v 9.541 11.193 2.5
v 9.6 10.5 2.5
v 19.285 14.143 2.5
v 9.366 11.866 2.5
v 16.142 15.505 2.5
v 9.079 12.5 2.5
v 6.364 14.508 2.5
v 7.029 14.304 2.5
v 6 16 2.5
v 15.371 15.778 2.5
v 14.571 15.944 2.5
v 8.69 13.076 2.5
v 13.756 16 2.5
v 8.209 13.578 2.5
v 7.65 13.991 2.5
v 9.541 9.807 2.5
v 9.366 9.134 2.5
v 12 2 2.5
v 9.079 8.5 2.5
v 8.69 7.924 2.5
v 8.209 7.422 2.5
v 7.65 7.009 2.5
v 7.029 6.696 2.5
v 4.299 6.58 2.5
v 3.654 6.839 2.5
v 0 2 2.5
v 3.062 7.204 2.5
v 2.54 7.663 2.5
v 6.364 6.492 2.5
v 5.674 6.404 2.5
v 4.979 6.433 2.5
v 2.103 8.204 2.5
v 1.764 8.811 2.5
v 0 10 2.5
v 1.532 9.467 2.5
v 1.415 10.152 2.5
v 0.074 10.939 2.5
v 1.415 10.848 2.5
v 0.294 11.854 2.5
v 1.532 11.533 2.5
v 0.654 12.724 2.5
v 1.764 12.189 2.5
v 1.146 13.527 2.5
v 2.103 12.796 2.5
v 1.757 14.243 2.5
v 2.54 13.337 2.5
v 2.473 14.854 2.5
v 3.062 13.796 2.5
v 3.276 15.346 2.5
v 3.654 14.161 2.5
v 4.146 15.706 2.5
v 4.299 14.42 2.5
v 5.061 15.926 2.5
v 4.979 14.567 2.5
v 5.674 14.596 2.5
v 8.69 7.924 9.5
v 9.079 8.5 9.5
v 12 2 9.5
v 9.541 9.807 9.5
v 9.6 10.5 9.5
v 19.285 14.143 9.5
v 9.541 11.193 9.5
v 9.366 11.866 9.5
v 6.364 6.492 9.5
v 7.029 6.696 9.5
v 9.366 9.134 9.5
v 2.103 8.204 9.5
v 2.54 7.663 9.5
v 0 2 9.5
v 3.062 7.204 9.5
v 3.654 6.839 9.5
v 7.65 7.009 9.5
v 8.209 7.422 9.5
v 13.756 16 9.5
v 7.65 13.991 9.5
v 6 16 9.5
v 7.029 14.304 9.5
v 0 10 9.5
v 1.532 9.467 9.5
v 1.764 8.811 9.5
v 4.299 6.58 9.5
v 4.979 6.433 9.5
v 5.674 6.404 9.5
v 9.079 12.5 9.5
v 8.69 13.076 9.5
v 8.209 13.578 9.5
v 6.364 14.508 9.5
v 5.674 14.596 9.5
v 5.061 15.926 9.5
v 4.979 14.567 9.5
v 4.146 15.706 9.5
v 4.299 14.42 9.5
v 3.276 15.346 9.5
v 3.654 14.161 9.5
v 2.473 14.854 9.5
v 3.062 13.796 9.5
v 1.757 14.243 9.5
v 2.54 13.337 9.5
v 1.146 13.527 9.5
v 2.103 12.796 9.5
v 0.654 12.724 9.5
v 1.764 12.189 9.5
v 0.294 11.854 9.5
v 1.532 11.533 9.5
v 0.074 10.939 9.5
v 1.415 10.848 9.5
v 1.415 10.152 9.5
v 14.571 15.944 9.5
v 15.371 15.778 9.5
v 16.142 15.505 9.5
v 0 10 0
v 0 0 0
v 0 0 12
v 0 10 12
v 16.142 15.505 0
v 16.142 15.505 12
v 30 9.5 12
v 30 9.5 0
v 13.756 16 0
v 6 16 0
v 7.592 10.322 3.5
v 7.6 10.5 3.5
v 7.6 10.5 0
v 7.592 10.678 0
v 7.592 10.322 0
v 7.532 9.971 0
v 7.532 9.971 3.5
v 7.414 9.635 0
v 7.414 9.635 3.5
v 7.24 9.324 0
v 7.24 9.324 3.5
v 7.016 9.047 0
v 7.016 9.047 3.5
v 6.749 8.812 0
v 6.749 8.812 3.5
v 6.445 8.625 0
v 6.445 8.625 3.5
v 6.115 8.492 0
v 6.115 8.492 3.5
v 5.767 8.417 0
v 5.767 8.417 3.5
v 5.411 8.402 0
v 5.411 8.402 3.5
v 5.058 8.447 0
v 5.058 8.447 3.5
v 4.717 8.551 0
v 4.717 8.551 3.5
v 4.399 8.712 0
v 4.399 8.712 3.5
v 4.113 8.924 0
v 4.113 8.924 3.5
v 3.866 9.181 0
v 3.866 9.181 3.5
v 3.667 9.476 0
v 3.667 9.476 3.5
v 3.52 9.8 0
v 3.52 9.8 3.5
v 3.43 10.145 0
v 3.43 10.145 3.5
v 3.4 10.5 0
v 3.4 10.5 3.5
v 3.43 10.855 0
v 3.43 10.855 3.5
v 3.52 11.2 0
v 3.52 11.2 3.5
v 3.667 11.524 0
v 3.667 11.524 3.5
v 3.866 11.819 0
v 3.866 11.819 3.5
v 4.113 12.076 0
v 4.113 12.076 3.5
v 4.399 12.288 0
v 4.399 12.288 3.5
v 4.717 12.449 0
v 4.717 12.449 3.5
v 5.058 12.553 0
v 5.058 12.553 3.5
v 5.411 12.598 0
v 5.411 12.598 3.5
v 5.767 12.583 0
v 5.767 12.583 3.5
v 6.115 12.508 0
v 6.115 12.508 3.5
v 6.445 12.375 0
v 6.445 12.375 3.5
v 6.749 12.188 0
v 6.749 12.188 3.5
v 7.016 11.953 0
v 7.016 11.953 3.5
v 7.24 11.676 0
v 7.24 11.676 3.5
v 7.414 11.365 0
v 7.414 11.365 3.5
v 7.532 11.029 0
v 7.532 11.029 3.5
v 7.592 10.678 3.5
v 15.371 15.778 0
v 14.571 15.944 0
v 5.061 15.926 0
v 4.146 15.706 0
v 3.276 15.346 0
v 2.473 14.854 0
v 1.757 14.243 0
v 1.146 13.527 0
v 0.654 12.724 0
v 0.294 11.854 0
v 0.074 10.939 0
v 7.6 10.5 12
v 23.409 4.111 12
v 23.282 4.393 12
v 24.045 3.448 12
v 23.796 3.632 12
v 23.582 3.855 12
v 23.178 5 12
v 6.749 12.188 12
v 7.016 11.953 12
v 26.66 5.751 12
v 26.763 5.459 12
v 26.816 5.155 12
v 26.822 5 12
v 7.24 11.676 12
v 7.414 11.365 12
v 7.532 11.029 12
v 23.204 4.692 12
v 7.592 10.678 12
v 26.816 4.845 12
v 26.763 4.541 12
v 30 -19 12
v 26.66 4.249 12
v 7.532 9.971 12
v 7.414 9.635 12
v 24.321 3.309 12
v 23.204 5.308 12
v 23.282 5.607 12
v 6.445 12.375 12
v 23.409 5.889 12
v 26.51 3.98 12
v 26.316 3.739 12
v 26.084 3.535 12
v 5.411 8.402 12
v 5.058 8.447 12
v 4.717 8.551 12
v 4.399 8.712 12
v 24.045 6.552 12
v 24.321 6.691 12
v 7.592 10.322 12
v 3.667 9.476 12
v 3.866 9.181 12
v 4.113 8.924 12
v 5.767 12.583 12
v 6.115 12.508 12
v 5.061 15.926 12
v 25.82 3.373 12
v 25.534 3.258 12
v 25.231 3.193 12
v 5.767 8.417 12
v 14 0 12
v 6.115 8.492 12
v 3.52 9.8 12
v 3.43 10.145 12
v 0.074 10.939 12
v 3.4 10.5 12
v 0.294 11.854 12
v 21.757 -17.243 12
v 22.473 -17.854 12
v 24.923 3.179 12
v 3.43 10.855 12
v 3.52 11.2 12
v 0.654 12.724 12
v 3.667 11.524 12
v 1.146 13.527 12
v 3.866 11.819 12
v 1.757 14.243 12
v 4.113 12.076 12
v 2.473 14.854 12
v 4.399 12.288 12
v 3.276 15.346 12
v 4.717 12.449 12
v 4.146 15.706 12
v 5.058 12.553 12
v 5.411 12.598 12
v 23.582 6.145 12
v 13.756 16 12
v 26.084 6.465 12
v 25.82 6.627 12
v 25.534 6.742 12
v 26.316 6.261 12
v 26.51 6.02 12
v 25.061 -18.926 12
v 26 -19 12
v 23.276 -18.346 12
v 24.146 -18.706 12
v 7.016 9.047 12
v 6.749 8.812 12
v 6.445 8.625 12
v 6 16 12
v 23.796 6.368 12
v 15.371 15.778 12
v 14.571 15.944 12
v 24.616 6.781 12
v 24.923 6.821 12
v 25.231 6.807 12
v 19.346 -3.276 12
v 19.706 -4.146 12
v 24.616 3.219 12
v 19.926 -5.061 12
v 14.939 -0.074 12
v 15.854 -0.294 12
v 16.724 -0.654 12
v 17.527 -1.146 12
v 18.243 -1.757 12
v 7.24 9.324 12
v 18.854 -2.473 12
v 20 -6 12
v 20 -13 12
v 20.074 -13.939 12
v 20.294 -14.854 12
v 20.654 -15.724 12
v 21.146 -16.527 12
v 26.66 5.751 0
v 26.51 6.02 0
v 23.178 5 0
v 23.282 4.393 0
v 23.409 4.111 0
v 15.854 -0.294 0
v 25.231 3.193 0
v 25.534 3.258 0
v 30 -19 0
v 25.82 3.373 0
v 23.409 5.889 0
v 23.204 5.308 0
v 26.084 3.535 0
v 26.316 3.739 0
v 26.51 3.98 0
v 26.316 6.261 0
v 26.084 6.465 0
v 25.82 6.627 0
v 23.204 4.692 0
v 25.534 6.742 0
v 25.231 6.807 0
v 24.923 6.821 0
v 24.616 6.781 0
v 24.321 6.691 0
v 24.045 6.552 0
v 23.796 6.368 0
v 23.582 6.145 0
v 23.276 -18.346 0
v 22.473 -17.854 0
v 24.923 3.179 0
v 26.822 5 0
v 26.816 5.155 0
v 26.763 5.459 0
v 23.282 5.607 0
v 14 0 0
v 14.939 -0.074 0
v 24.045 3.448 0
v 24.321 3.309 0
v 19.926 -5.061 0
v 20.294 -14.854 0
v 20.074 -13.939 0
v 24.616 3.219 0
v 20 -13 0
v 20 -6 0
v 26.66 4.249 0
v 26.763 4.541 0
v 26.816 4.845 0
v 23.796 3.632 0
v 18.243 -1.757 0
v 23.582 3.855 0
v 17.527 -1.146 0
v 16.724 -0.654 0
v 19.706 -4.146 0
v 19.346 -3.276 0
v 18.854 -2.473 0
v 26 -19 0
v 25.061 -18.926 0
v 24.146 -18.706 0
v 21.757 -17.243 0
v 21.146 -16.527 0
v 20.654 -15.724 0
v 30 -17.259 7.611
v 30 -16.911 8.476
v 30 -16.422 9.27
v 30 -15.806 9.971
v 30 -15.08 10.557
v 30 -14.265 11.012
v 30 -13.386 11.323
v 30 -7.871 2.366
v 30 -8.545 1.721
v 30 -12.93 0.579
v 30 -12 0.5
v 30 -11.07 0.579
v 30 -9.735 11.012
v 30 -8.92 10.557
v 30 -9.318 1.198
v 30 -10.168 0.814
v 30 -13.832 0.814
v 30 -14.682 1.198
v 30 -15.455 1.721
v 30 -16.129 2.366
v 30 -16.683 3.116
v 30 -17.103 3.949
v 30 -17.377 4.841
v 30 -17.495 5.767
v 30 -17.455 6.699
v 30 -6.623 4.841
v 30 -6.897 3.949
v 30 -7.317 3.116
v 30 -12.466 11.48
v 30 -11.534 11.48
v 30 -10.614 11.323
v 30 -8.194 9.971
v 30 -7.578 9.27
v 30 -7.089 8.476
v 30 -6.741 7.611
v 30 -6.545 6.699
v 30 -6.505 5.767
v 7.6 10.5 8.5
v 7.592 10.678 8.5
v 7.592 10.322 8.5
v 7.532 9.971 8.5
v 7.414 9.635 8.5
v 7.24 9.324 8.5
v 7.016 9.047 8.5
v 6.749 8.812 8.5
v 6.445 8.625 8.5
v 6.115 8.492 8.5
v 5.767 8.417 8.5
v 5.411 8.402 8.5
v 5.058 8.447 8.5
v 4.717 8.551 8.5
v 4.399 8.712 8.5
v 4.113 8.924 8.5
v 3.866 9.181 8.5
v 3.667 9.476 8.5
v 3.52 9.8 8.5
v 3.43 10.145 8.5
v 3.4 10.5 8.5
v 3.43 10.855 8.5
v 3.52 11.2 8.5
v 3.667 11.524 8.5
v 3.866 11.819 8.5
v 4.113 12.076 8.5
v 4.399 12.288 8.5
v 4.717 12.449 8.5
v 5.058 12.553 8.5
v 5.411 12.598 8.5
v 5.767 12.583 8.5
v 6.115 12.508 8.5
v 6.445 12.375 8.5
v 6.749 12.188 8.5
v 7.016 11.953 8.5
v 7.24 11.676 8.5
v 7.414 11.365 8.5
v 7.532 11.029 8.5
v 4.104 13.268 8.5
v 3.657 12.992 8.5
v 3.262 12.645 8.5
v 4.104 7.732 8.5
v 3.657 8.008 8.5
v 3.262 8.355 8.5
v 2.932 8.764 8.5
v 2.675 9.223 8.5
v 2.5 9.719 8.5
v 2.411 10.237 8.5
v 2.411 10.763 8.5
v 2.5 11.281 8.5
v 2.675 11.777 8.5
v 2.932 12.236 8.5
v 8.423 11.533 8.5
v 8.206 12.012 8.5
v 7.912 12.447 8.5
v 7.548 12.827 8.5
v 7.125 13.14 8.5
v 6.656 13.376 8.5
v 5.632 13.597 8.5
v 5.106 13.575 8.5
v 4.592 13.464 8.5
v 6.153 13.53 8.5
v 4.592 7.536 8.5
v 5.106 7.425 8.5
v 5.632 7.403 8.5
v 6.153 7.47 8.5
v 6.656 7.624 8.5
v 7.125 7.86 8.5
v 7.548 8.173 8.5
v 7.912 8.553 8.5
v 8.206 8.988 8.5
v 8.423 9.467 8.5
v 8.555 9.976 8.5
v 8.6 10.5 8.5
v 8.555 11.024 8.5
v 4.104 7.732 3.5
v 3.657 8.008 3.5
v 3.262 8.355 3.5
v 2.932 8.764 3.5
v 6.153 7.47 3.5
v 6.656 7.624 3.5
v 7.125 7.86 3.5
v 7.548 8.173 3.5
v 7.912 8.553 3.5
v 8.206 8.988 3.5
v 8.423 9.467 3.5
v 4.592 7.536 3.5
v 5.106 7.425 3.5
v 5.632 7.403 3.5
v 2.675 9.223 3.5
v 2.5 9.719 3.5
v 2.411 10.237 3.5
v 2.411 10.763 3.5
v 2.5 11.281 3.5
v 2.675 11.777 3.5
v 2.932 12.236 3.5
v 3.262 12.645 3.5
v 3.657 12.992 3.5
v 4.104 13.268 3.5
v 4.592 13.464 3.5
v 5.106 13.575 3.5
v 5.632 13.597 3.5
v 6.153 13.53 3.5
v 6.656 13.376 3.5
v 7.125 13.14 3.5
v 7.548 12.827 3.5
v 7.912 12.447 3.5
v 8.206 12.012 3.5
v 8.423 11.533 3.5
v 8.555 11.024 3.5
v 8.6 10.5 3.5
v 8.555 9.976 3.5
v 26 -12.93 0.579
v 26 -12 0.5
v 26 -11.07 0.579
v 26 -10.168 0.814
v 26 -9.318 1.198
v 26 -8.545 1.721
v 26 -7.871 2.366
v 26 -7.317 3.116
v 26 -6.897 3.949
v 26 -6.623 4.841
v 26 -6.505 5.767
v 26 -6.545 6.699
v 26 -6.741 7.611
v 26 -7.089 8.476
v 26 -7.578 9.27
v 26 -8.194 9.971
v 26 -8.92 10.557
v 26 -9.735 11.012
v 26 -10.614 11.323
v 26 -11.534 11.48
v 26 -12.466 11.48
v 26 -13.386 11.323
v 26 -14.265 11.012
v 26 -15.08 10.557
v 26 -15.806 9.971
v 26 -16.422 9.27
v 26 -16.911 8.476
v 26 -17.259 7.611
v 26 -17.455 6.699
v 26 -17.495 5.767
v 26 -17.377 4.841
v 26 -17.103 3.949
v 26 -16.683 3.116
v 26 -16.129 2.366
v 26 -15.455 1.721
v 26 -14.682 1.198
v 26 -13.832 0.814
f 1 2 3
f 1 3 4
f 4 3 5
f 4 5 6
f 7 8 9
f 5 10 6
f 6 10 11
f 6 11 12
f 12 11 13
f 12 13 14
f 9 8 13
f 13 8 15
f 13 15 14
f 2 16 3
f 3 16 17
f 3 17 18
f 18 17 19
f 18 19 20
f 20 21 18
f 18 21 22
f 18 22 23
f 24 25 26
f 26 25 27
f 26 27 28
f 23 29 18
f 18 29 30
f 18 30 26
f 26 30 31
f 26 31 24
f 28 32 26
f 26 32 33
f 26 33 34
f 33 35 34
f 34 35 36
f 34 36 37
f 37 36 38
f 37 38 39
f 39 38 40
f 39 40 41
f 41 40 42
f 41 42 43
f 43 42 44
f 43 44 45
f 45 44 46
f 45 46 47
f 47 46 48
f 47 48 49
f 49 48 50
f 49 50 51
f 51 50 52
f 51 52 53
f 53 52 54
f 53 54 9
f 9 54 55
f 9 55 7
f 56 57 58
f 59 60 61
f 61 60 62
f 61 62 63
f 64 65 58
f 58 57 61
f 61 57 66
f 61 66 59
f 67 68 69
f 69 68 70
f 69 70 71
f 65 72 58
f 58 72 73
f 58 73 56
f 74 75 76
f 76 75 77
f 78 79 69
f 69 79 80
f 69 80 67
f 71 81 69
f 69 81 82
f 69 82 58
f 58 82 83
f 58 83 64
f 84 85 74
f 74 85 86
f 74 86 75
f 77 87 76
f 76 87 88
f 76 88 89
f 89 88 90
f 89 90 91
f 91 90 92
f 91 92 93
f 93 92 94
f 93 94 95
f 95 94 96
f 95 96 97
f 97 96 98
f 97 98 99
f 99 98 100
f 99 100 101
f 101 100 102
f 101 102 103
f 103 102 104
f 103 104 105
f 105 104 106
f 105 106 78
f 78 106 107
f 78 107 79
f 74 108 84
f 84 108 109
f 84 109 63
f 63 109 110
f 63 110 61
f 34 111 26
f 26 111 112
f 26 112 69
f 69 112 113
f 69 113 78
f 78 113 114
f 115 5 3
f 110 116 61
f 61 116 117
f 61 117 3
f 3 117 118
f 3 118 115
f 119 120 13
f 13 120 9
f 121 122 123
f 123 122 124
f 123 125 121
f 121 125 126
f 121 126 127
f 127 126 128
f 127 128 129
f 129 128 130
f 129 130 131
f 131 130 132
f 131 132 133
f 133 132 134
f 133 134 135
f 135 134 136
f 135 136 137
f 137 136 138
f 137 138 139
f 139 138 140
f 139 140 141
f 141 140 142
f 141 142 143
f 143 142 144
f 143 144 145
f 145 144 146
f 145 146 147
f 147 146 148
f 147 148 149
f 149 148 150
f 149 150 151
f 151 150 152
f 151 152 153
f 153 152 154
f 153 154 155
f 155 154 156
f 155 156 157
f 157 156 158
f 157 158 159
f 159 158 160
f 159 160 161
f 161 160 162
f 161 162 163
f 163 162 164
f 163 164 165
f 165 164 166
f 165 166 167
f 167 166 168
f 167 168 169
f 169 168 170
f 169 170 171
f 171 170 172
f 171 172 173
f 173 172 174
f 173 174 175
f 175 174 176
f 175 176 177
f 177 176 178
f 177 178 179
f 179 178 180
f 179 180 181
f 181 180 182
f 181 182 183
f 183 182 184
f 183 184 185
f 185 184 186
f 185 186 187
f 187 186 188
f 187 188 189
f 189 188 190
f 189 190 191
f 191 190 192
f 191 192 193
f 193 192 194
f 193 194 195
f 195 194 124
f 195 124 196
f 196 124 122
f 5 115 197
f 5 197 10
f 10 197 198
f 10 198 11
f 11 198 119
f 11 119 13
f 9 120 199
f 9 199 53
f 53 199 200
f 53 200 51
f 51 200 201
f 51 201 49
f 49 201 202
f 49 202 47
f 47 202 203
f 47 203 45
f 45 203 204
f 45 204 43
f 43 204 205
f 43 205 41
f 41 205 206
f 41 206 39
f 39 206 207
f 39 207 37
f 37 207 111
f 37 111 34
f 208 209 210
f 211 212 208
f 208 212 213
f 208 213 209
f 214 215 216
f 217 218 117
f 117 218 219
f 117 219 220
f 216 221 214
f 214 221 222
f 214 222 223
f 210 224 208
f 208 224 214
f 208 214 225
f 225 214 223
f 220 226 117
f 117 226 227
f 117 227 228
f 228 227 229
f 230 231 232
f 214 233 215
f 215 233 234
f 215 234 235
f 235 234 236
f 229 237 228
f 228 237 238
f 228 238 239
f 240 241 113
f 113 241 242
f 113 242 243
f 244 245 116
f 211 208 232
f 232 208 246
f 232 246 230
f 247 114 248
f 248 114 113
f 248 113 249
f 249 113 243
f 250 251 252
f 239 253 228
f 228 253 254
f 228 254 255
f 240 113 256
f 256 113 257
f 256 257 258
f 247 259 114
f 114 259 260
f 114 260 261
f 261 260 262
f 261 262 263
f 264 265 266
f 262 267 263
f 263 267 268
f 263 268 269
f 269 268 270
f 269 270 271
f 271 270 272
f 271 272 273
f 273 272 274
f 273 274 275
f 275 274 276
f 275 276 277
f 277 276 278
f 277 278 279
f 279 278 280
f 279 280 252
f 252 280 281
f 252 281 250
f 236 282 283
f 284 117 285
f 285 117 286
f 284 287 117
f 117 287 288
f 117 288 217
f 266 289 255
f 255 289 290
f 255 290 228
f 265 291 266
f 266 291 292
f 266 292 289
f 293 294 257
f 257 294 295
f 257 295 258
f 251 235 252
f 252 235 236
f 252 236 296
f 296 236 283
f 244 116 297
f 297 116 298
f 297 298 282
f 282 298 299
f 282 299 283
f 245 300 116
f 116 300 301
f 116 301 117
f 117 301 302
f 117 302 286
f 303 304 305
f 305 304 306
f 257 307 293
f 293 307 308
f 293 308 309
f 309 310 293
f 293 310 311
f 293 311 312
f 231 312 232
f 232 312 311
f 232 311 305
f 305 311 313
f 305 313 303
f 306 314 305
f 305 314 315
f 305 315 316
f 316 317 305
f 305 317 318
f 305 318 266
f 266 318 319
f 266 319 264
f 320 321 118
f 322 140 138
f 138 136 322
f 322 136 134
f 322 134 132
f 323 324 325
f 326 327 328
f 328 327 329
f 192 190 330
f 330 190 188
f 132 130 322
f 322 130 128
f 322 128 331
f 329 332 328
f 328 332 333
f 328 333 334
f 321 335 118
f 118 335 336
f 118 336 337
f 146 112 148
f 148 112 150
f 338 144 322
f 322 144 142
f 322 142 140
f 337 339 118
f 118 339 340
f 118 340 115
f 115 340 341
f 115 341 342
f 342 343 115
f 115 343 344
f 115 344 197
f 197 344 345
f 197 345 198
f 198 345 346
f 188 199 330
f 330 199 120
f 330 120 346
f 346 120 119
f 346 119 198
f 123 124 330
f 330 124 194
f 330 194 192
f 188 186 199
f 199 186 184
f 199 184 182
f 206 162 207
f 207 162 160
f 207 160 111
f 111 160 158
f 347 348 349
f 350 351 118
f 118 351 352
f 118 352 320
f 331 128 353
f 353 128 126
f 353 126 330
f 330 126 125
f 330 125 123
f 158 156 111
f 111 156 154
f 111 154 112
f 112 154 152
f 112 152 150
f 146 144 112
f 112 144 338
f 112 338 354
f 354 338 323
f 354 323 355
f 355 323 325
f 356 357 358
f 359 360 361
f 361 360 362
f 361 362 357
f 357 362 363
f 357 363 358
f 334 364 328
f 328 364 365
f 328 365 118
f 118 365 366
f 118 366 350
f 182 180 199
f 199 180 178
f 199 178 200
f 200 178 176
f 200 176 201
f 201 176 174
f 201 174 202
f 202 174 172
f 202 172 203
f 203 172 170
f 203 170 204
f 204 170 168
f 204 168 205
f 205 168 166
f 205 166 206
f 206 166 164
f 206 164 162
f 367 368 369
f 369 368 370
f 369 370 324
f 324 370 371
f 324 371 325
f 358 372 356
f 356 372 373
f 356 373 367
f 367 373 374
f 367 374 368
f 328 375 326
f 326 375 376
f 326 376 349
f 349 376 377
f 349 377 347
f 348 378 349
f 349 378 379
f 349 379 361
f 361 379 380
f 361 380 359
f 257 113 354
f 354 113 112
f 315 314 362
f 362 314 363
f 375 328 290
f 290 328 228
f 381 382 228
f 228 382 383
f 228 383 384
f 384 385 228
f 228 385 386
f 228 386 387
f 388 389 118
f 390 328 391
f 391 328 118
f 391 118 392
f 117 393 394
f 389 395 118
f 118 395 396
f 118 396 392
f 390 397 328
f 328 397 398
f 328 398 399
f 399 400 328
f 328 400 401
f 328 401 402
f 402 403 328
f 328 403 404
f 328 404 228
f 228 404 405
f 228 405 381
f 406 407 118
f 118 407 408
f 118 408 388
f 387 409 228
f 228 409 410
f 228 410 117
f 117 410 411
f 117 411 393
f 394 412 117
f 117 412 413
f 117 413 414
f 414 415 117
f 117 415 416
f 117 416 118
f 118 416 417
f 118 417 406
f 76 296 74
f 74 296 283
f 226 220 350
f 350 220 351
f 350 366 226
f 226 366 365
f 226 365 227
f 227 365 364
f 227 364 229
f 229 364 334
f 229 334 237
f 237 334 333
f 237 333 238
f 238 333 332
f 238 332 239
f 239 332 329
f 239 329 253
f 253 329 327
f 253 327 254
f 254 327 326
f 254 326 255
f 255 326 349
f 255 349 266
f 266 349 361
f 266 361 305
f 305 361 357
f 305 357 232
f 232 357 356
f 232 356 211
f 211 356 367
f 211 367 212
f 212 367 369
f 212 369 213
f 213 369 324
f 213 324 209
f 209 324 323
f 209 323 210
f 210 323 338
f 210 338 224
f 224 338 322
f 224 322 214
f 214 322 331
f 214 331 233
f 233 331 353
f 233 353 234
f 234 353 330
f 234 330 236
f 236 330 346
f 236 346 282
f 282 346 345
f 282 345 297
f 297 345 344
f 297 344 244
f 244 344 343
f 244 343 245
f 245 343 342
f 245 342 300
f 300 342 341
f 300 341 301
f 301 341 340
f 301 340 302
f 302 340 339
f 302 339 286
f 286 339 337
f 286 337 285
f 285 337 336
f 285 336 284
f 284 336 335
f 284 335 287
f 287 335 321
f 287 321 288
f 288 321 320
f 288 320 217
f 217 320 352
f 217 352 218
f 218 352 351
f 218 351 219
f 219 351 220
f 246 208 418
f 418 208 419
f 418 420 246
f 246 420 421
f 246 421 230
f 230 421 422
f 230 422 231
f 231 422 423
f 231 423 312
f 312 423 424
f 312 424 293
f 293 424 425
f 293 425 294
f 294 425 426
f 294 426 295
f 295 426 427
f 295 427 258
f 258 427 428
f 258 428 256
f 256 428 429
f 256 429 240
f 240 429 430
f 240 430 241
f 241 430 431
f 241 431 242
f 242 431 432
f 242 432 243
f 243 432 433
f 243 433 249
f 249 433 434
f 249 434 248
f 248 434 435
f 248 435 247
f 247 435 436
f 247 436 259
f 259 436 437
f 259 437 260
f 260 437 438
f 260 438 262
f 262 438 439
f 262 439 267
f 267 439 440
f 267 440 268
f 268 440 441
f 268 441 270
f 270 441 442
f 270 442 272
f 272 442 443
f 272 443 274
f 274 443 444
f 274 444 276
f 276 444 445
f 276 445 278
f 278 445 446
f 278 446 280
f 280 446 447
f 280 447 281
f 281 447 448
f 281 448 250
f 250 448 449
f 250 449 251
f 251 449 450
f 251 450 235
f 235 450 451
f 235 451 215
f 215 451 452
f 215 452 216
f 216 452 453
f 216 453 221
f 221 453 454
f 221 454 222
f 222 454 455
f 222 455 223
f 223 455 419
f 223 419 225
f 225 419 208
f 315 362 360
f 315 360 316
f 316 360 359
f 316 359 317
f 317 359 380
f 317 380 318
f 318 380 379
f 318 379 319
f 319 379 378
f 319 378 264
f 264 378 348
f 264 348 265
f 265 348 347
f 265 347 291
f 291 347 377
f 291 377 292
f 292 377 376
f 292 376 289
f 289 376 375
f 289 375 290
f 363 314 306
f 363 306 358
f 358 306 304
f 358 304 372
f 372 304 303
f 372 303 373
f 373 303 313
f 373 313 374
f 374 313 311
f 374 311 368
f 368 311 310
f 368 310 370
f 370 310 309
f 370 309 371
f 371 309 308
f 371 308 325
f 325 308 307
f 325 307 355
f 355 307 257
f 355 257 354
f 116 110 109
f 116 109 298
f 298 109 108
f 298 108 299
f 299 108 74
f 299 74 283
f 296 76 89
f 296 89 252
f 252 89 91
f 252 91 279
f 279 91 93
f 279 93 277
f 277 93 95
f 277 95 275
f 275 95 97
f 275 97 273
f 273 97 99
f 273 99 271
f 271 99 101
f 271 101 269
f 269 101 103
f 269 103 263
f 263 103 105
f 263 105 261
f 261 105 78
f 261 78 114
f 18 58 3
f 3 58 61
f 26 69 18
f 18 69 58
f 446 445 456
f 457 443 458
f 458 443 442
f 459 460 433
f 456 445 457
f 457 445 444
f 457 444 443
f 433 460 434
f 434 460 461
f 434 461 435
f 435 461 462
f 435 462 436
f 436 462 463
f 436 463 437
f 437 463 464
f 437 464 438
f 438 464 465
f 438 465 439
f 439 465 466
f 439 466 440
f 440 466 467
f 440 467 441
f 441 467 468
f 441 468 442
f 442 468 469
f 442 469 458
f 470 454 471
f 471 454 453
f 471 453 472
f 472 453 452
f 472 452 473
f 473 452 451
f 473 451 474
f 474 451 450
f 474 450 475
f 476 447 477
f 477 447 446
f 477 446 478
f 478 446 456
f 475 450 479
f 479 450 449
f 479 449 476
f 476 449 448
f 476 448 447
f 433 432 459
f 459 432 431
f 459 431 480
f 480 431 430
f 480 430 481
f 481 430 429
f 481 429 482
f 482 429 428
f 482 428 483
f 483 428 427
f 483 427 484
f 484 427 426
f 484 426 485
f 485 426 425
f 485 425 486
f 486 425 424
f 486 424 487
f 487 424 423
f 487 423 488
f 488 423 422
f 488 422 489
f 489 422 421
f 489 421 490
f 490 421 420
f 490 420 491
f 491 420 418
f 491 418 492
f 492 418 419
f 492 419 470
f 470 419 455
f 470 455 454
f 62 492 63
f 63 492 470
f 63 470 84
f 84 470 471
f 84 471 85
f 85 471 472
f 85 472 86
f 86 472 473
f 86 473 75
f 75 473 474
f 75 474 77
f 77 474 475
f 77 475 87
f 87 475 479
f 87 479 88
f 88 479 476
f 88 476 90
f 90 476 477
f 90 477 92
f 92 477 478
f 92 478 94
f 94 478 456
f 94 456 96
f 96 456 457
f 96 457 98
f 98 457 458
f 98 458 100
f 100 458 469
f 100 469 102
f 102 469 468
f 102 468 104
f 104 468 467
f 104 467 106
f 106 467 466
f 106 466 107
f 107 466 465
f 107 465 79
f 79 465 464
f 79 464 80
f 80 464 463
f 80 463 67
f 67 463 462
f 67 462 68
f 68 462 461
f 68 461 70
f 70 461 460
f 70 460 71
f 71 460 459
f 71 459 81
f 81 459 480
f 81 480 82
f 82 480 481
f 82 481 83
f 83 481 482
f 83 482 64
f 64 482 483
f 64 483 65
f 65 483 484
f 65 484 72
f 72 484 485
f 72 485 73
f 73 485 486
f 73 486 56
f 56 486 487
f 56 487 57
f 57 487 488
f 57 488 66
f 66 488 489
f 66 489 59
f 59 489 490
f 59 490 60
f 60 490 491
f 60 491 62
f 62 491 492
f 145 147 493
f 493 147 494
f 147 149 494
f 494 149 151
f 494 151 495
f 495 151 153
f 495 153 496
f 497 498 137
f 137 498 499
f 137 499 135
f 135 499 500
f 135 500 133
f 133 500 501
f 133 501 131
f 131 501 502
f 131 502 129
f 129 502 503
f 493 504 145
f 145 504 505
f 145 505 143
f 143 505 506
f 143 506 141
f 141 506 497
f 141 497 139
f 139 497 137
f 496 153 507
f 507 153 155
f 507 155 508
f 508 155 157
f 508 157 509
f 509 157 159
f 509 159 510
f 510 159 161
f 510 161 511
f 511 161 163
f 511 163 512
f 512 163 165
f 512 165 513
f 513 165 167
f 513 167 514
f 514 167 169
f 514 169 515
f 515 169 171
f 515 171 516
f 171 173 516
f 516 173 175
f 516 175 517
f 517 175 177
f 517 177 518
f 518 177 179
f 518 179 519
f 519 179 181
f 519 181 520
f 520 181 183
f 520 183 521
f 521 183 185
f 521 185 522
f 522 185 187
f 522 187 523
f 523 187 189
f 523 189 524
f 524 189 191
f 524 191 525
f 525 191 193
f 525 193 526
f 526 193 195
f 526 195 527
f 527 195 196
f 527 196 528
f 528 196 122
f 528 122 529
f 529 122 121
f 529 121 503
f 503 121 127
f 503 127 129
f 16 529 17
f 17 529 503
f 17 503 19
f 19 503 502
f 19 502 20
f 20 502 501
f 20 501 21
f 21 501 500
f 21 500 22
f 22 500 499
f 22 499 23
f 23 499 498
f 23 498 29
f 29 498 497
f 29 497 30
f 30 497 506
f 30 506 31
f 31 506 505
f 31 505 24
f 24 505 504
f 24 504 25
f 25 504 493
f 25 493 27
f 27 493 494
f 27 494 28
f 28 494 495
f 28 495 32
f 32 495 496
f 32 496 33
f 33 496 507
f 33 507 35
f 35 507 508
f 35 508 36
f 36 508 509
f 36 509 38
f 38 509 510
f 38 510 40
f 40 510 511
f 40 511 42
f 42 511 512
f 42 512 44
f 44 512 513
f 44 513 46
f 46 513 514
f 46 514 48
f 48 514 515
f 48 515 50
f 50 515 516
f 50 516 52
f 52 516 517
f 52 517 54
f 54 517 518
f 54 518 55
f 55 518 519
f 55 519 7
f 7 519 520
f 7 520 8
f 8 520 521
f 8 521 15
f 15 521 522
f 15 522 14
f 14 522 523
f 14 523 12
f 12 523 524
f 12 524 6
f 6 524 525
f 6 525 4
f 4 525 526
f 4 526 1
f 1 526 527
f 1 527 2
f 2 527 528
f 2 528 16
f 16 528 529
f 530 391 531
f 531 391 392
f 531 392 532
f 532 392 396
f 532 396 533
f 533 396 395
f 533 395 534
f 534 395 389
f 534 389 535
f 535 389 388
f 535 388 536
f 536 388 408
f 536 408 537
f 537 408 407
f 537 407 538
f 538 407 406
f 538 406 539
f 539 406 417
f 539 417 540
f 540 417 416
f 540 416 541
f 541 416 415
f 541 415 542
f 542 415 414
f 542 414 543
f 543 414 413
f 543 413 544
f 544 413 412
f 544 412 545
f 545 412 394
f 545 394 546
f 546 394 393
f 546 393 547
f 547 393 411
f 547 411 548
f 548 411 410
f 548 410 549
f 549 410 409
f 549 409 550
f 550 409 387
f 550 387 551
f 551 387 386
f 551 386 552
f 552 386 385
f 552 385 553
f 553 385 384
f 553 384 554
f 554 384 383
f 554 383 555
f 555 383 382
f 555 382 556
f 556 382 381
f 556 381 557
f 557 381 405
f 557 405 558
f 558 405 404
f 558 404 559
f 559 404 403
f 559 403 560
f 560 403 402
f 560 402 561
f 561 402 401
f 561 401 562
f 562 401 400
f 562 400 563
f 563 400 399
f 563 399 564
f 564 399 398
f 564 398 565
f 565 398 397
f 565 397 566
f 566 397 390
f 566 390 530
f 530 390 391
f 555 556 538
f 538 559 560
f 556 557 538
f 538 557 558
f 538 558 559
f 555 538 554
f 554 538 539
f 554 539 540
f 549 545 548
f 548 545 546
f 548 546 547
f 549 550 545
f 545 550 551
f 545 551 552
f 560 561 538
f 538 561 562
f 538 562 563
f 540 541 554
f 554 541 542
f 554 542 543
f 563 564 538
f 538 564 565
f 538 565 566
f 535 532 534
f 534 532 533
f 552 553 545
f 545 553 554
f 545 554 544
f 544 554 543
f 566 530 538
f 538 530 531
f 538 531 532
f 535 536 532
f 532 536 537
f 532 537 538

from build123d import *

# Parameters (mm, degrees)
SKETCH1_R               = 1.822216084
SKETCH1_R_2             = 2.1
BOSS_EXTRUDE1_DEPTH     = 12
FILLET1_R               = 6
CUT_EXTRUDE1_DEPTH      = 3.5
CUT_EXTRUDE1_DEPTH_BACK = 3.5
SKETCH5_R               = 5.5
CUT_EXTRUDE2_DEPTH      = 4


with BuildPart() as part:
    # Sketch1 → Boss-Extrude1 (new body)
    with BuildSketch(Plane.XY):
        Polygon((15, 16), (30, 9.5), (30, -19), (20, -19), (20, 0), (0, 0), (0, 16), align=None)
        with Locations((25, 5)):
            Circle(SKETCH1_R, mode=Mode.SUBTRACT)
        with Locations((5.5, 10.5)):
            Circle(SKETCH1_R_2, mode=Mode.SUBTRACT)
    extrude(amount=BOSS_EXTRUDE1_DEPTH)

    # Fillet1
    fillet1_edges = [part.edges().sort_by_distance(p)[0] for p in [
        (0, 16, 6),
        (15, 16, 6),
        (20, -19, 6),
        (20, 0, 6),
    ]]
    fillet(fillet1_edges, radius=FILLET1_R)

    # Sketch2 → Cut-Extrude1 (cut, two sides: drawn at the far end of the back side and taken through both)
    with BuildSketch(Plane(origin=(0, 0, 6), x_dir=(-1, 0, 0), z_dir=(0, 0, -1)).offset(-CUT_EXTRUDE1_DEPTH_BACK)):
        Polygon((-22, 18.66922052), (-12, 2), (0, 2), (0, 22), align=None)
    extrude(amount=CUT_EXTRUDE1_DEPTH + CUT_EXTRUDE1_DEPTH_BACK, mode=Mode.SUBTRACT)

    # Sketch4 → Revolve1 (revolve)
    with BuildSketch(Plane(origin=(5.5, 0, 0), x_dir=(0, 0, -1), z_dir=(1, 0, 0)), mode=Mode.PRIVATE) as revolve1_sk:
        Polygon((-9.5, 12.6), (-8.5, 12.6), (-8.5, 13.6), (-9.5, 14.6), align=None)
    revolve1 = revolve(revolve1_sk.sketch.rotate(Axis((5.5, 10.5, 12), (0, 0, -1)), 90), axis=Axis((5.5, 10.5, 12), (0, 0, -1)))

    # Mirror1: Revolve1 across plane
    add(revolve1.mirror(Plane(origin=(0, 0, 6), x_dir=(1, 0, 0), z_dir=(0, 0, -1))))

    # Sketch5 → Cut-Extrude2 (cut)
    with BuildSketch(Plane(origin=(30, 0, 0), x_dir=(0, 0, -1), z_dir=(1, 0, 0))):
        with Locations((-6, -12)):
            Circle(SKETCH5_R)
    extrude(amount=-CUT_EXTRUDE2_DEPTH, mode=Mode.SUBTRACT)


solid = part.part
